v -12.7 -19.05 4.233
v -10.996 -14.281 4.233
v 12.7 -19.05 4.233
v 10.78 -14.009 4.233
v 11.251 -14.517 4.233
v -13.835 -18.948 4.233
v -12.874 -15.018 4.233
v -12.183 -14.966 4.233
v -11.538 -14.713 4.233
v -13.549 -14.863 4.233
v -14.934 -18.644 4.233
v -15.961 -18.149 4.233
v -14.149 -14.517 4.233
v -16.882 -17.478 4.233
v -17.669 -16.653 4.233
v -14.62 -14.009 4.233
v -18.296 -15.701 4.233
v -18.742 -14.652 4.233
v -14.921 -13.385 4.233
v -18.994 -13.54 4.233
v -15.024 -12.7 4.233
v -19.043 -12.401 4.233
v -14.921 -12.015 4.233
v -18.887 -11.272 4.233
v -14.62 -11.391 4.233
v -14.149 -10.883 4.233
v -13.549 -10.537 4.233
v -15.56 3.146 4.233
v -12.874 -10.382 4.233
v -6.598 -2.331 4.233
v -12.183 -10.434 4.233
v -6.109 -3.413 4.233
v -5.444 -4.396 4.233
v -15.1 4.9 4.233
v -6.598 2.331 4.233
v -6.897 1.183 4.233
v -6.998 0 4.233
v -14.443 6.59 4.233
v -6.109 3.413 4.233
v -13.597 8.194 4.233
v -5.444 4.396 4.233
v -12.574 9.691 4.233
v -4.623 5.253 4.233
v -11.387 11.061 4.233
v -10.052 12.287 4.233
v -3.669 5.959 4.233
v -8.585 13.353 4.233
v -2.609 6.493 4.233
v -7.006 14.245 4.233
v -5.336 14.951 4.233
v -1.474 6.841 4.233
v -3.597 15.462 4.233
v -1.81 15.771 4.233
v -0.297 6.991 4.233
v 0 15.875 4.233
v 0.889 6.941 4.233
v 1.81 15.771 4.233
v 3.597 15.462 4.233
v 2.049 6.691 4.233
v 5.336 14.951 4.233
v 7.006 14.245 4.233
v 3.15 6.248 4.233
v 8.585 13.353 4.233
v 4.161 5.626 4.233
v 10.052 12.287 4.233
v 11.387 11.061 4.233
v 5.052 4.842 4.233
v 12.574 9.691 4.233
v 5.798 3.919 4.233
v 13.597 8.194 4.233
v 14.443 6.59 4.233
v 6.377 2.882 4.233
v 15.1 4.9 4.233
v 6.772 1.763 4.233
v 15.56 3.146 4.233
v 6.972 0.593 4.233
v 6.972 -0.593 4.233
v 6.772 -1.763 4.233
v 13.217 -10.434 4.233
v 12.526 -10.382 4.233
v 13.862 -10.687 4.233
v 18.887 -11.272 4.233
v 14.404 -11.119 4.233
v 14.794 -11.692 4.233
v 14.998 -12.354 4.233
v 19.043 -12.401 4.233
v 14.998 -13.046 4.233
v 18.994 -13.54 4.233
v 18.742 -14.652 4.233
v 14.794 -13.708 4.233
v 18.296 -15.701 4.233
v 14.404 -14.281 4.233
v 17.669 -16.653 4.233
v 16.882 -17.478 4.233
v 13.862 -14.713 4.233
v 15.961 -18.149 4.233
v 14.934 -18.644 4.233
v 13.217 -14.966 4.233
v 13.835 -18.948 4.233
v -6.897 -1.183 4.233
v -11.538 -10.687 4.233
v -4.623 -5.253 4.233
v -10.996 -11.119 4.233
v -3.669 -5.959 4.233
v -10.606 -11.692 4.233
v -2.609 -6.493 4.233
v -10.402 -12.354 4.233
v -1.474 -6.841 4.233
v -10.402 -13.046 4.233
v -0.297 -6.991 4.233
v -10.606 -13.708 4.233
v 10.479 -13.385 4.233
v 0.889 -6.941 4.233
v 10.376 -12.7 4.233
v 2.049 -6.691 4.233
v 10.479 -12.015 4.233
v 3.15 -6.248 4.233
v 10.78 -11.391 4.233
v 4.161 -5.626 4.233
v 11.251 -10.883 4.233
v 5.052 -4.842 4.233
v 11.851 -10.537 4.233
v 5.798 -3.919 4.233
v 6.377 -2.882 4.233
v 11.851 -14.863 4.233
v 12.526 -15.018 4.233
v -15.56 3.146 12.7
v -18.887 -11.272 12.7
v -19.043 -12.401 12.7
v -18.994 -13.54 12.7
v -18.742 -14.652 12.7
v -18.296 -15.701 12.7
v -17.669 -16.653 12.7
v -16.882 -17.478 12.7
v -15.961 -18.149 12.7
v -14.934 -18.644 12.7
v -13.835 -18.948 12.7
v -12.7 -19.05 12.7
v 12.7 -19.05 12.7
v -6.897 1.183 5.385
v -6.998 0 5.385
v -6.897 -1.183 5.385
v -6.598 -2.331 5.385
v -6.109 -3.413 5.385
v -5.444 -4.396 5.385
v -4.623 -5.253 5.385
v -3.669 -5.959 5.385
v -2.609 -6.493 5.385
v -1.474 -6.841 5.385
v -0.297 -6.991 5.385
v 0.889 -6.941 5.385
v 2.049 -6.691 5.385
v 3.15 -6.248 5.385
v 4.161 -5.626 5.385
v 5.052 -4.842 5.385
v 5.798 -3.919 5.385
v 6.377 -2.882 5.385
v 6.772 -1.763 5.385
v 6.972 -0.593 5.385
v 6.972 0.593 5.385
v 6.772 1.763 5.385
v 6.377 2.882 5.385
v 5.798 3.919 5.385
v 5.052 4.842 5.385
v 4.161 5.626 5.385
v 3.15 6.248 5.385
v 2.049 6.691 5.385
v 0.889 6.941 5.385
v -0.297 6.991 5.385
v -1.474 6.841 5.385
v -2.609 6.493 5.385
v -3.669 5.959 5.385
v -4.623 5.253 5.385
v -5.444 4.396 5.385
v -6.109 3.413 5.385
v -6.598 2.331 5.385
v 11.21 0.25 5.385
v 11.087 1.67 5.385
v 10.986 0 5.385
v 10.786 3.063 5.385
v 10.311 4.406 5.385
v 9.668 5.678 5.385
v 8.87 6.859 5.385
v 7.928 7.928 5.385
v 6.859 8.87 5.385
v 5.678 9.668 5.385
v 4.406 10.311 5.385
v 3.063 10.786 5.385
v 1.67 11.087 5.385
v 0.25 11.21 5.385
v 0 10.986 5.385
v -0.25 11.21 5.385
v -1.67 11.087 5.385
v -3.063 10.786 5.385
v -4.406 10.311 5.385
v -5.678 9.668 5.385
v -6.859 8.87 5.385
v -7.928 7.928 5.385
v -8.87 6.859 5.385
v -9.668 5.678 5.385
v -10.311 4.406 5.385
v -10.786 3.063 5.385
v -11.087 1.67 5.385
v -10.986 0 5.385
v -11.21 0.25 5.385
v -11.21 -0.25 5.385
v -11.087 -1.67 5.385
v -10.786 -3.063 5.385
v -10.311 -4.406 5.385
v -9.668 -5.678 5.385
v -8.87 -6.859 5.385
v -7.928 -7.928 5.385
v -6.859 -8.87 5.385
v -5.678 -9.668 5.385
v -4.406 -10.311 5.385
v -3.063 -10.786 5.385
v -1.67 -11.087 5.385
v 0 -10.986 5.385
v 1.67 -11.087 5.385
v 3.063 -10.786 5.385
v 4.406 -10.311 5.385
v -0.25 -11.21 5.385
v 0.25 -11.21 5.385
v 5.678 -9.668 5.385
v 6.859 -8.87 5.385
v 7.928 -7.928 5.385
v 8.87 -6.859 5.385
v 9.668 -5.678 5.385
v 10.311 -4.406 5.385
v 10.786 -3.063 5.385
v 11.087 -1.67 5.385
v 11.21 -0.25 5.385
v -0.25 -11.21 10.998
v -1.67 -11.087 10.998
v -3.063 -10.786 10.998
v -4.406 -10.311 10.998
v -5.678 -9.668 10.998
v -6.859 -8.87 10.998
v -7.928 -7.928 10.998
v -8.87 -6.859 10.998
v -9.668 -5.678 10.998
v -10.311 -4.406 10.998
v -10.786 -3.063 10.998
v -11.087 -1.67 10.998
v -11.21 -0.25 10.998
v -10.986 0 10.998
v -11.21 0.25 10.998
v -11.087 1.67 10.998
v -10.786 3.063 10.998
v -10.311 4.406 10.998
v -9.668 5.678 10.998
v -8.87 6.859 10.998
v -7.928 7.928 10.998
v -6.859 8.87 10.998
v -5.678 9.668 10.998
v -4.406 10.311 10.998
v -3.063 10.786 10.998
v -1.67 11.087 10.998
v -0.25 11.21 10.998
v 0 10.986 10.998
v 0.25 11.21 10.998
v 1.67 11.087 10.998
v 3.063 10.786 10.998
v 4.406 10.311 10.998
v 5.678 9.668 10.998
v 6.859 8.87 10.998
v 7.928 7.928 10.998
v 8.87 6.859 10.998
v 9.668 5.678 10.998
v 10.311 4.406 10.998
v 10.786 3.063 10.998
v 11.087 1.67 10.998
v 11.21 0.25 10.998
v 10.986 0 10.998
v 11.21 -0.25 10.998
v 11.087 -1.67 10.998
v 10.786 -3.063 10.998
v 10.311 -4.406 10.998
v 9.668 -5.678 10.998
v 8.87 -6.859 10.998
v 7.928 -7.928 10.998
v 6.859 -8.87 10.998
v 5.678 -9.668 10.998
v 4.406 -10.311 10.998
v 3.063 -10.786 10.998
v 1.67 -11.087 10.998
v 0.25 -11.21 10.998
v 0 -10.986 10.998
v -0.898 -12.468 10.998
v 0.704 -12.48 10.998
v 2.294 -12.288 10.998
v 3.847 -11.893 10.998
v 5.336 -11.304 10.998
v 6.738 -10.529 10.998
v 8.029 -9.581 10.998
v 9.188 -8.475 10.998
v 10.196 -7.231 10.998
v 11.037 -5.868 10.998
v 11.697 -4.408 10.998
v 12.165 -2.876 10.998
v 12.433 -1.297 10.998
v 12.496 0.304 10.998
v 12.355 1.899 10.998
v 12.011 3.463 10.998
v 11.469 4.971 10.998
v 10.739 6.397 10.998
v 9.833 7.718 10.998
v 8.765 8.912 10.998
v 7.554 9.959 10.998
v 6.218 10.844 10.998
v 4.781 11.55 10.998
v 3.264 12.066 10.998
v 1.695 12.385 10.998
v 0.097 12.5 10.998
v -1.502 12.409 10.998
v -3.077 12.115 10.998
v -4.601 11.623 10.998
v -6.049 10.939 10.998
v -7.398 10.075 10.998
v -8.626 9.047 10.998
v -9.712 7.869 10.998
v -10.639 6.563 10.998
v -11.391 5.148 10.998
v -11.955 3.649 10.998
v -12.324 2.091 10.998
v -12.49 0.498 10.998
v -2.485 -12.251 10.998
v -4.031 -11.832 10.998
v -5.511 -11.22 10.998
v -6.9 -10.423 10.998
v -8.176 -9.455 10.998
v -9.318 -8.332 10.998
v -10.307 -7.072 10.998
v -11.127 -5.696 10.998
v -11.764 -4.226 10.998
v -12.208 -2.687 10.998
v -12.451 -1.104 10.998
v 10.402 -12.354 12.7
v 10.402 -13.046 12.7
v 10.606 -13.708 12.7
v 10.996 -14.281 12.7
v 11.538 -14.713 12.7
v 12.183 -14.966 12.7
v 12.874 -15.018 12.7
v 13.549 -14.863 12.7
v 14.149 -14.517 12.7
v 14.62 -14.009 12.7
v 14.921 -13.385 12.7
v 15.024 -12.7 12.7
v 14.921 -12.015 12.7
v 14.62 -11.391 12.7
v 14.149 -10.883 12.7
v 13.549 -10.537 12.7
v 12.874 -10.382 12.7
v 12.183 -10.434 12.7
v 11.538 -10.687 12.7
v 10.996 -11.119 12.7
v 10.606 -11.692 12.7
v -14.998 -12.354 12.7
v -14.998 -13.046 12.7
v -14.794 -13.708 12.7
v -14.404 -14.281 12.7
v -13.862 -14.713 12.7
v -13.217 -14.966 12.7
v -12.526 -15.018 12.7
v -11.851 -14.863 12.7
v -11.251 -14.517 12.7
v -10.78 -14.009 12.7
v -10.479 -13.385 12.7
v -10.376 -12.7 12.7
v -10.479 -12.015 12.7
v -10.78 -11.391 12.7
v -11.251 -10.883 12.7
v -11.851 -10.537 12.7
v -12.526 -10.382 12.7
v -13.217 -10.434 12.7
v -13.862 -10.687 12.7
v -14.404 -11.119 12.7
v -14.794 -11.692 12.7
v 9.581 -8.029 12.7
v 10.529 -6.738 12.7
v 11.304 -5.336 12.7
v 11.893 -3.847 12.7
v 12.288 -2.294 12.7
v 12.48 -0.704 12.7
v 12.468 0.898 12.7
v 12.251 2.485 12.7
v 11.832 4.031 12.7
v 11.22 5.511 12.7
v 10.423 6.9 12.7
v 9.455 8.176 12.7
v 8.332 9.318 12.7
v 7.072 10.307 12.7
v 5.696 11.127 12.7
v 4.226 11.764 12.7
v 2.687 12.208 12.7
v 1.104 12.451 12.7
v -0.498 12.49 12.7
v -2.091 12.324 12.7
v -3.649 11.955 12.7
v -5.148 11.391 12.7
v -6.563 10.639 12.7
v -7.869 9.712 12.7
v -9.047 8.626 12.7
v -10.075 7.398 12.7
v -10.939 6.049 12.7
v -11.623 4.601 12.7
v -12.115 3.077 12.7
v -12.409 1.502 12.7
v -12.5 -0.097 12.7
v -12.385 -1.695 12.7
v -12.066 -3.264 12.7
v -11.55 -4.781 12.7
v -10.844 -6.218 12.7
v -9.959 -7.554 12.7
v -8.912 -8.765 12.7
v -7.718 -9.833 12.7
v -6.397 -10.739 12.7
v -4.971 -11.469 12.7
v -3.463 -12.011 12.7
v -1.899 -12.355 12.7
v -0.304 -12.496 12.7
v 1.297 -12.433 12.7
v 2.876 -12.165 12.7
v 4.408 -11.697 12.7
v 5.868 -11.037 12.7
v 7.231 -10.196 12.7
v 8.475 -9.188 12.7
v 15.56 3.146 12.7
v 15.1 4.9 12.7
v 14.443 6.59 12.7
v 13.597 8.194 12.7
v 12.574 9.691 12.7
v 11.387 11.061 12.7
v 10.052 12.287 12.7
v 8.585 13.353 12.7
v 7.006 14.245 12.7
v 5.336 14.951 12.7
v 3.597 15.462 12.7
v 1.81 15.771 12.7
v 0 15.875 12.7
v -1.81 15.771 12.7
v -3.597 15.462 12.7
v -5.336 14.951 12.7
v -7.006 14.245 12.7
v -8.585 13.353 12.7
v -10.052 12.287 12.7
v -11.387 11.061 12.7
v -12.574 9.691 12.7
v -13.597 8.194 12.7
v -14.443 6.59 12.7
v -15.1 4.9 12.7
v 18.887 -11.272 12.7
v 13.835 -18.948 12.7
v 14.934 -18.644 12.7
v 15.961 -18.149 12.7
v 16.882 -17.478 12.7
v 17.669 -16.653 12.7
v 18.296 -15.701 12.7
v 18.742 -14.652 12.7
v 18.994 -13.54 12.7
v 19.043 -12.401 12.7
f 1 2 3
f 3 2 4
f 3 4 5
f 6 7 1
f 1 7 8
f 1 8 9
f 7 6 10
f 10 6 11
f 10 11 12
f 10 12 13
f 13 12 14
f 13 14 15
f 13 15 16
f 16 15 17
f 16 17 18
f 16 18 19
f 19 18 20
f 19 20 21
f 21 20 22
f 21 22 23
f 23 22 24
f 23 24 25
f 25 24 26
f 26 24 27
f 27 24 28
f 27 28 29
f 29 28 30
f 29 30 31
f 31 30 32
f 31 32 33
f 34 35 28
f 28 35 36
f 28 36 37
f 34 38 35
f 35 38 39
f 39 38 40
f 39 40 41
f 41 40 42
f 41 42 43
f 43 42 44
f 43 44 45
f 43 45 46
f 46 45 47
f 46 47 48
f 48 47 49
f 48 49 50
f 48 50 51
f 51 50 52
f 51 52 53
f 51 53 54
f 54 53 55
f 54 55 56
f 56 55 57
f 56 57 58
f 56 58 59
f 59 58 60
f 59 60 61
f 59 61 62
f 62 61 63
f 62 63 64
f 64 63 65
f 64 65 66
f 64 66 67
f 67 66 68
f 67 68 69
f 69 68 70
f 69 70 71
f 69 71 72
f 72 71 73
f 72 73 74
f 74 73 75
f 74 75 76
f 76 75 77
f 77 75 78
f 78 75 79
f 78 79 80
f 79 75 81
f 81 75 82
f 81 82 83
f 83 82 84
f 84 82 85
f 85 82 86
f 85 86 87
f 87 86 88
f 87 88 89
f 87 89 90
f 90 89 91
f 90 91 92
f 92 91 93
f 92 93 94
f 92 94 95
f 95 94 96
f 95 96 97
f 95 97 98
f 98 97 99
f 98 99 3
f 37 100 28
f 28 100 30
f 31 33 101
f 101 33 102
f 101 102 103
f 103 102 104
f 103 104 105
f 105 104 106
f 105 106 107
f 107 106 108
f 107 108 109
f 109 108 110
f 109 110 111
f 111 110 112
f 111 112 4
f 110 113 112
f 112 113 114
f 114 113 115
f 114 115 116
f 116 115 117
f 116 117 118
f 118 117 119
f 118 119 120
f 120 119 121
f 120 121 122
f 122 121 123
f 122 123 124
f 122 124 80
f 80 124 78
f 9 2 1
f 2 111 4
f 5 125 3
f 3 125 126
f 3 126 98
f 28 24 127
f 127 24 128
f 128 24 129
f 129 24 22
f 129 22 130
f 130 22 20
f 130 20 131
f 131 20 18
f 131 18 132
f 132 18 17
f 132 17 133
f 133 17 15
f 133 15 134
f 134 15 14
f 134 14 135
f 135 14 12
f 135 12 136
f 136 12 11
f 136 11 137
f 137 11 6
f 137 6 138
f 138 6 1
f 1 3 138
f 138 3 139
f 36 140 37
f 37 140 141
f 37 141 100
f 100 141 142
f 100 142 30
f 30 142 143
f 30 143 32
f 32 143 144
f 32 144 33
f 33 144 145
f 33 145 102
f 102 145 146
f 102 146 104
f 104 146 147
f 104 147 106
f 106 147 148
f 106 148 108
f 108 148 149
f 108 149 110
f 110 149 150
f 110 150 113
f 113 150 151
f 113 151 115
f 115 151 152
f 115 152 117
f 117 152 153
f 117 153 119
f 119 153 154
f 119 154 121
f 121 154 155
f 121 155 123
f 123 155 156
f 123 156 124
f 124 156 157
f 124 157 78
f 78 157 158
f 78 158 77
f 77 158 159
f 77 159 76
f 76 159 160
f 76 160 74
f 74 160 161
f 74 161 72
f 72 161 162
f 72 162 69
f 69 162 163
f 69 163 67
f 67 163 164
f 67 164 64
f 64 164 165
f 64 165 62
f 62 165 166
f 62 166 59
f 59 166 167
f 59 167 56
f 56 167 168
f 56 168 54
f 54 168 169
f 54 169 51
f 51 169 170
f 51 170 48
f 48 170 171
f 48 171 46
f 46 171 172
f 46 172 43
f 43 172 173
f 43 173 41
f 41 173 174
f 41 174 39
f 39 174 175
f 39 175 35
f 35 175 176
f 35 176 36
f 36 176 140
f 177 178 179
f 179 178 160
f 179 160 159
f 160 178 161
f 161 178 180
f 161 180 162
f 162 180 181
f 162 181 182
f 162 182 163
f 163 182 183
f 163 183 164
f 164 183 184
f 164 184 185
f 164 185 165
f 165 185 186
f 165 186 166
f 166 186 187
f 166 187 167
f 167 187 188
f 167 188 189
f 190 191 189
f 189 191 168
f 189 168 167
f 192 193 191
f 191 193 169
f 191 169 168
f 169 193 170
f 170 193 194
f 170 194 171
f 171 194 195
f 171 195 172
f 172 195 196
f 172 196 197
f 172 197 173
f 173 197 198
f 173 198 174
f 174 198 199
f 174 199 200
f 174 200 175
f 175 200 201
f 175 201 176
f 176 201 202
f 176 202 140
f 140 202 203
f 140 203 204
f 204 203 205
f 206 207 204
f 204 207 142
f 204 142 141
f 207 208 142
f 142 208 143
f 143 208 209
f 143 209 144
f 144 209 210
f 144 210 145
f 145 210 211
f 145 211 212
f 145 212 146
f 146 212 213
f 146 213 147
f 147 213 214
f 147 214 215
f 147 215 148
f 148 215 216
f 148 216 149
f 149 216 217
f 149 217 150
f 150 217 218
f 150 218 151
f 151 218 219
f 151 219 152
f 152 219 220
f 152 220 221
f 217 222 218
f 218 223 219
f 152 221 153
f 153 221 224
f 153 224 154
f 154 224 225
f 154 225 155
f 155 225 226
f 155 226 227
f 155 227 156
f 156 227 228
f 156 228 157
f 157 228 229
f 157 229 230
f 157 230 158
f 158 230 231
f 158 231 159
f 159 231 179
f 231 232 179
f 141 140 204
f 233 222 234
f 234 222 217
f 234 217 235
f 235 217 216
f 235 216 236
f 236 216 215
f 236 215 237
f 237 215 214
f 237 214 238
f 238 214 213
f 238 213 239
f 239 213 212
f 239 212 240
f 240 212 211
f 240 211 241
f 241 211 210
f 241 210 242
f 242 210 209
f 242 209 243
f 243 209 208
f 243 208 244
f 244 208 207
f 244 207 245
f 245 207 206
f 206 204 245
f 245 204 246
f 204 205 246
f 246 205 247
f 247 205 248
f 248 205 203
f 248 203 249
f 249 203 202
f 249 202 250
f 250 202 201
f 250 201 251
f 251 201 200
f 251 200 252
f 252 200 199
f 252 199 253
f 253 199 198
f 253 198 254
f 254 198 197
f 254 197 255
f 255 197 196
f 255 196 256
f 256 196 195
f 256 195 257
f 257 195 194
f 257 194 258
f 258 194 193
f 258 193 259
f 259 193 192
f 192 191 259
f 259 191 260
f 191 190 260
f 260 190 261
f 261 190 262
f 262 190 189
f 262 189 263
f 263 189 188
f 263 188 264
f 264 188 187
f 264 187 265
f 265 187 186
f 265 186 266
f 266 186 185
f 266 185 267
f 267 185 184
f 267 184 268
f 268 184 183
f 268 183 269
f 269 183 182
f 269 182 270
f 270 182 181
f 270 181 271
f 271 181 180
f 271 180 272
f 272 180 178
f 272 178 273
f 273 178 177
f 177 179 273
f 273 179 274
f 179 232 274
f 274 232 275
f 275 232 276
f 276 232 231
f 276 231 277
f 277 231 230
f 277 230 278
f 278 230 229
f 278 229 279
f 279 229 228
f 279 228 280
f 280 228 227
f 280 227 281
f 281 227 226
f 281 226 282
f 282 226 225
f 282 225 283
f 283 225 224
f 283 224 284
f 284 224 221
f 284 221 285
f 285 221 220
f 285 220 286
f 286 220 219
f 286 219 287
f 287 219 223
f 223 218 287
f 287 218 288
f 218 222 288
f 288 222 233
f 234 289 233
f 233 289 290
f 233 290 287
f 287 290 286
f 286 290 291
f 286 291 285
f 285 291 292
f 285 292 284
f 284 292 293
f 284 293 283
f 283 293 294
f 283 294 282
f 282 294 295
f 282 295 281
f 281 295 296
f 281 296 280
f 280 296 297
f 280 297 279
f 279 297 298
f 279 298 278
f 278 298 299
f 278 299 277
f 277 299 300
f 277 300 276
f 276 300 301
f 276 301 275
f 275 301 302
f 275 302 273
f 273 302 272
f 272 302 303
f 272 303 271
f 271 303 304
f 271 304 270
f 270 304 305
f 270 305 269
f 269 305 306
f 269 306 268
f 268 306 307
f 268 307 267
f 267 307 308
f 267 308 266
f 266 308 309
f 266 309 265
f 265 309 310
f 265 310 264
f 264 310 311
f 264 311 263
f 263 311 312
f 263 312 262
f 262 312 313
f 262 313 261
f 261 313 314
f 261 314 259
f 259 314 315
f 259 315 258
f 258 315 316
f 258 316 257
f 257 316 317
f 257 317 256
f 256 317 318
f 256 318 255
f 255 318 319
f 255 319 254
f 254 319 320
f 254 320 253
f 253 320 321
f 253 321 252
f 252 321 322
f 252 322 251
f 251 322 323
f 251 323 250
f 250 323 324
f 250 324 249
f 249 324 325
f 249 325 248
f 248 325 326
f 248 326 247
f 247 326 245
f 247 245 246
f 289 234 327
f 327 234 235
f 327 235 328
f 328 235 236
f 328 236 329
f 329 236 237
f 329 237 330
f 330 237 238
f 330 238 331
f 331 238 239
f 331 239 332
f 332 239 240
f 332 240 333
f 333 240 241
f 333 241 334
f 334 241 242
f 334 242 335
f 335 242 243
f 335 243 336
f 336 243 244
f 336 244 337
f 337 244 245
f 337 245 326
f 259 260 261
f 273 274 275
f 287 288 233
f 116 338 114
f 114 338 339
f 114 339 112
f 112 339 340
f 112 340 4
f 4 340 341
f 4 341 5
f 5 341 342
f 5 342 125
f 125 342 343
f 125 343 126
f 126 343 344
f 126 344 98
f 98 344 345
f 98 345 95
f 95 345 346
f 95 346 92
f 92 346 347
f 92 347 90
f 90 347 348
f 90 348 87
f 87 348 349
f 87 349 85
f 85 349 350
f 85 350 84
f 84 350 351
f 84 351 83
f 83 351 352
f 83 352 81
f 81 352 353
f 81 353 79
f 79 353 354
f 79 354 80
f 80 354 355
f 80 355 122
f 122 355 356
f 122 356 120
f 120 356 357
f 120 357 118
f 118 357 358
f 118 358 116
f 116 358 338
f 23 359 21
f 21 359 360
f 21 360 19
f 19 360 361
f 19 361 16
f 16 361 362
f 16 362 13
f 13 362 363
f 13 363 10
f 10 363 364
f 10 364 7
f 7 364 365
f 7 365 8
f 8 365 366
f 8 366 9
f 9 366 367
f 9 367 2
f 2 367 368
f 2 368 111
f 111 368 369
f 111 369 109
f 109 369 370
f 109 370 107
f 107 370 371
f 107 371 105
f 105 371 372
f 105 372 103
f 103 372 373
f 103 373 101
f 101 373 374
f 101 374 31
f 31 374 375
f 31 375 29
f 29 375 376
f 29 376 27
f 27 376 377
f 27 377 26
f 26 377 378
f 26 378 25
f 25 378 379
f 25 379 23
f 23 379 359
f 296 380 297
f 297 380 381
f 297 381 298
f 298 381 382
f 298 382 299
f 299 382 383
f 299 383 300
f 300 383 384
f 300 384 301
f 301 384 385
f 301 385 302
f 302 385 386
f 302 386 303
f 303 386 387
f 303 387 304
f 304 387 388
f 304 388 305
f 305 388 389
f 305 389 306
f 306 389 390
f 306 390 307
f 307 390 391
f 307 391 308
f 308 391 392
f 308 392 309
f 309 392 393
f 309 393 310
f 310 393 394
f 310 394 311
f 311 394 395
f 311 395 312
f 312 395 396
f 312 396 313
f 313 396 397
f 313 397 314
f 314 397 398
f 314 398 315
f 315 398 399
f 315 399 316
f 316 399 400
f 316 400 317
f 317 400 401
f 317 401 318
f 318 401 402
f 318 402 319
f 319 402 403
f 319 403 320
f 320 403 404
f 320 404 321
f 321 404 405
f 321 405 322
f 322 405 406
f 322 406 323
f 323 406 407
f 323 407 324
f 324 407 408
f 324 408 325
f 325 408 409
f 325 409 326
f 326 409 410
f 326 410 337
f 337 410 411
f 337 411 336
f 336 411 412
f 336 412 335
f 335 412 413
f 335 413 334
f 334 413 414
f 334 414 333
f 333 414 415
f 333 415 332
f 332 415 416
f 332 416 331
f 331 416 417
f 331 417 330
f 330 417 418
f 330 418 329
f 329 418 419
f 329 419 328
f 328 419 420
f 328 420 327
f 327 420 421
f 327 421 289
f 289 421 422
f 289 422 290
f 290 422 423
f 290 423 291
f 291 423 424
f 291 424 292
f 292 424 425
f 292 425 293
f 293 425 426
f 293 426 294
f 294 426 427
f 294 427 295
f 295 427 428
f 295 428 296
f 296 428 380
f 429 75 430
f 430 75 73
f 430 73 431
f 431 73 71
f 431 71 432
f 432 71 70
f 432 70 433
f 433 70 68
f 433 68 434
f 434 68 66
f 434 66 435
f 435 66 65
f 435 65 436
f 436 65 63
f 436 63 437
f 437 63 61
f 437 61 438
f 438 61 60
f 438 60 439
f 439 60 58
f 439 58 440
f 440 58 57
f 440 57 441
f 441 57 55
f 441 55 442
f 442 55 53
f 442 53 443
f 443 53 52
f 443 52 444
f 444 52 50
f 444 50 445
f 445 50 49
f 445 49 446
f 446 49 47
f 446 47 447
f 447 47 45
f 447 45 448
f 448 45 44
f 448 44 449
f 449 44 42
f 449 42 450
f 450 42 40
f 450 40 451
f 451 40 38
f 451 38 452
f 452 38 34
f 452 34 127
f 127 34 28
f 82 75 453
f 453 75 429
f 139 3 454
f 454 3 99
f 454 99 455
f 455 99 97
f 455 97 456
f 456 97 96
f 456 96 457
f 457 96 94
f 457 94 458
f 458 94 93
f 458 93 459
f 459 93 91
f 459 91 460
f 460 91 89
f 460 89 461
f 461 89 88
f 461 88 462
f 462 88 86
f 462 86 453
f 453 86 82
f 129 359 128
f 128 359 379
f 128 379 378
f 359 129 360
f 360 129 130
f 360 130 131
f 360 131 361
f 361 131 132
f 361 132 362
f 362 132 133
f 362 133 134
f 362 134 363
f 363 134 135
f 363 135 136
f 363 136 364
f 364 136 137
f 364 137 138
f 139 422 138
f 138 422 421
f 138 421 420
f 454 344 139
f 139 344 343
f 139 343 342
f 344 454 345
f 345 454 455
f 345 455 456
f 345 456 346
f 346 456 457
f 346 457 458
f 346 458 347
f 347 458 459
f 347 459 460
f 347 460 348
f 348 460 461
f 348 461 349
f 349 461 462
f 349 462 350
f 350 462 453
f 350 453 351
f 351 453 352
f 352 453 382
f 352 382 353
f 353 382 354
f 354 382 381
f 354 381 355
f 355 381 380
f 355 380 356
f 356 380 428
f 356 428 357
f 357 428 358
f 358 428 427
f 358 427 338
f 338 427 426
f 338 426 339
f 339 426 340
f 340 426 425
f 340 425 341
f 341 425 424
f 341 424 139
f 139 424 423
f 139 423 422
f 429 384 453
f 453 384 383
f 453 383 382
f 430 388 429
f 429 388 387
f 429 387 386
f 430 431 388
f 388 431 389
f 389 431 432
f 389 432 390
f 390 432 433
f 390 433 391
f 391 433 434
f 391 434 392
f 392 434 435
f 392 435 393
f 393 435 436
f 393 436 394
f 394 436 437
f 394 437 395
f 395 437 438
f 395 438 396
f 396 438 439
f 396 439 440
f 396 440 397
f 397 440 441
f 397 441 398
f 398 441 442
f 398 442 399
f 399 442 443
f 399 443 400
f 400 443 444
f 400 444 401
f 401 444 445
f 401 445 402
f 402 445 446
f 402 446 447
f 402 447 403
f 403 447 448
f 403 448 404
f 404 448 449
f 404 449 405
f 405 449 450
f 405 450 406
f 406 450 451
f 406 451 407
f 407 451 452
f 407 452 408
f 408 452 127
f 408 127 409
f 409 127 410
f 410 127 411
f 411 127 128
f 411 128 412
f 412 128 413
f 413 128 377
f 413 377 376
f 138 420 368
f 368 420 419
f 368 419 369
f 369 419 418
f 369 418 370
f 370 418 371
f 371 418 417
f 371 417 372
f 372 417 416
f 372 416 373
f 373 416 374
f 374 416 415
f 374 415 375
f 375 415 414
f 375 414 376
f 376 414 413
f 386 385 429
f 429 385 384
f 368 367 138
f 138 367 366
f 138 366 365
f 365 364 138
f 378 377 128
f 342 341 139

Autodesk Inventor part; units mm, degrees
ref_plane "YZ Plane" through (0, 0, 0) normal (1, 0, 0) x (0, 1, 0)
ref_plane "XZ Plane" through (0, 0, 0) normal (0, 1, 0) x (-1, 0, 0)
ref_plane "XY Plane" through (0, 0, 0) normal (0, 0, 1) x (1, 0, 0)
sketch "Sketch1" plane through (0, 0, 0) normal (0, 0, 1) x (1, 0, 0)
  arc A0 (-5.827627, -9.579088) -> (-0.250527, -11.231057) centre (0.025157, -0.060123) ccw
  arc A1 (0.25, -11.209713) -> (5.829601, -9.582326) centre (0.025157, -0.060123) ccw
  line L0 (0.46552, -11.403002) -> (0, -10.9855)
  line L1 (0, -10.9855) -> (-0.46552, -11.403002)
  arc A2 (-11.176173, -0.249433) -> (-9.579088, -5.827627) centre (0.025157, -0.060123) ccw
  line L2 (-11.403002, -0.46552) -> (-10.9855, 0)
  line L3 (-10.9855, 0) -> (-11.403002, 0.46552)
  arc A3 (-9.579088, 5.827627) -> (-11.209713, 0.25) centre (0, 0) ccw
  arc A4 (5.827627, 9.579088) -> (0.25, 11.209713) centre (0, 0) ccw
  line L4 (0, 10.9855) -> (0.46552, 11.403002)
  line L5 (-0.46552, 11.403002) -> (0, 10.9855)
  arc A5 (-0.25, 11.209713) -> (-5.827627, 9.579088) centre (0, 0) ccw
  arc A6 (11.209713, 0.25) -> (9.579088, 5.827627) centre (0, 0) ccw
  line L6 (11.403002, 0.46552) -> (10.9855, 0)
  line L7 (10.9855, 0) -> (11.403002, -0.46552)
  arc A7 (9.579088, -5.827627) -> (11.209713, -0.25) centre (0, 0) ccw
  arc A8 (7.230816, -10.196338) -> (10.196338, -7.230816) centre (0, 0) ccw
  arc A9 (-10.196338, -7.230816) -> (-7.230816, -10.196338) centre (0, 0) ccw
  arc A10 (-7.230816, 10.196338) -> (-10.196338, 7.230816) centre (0, 0) ccw
  circle A11 centre (0, 0) radius 12.5
  circle A12 centre (12.7, -12.7) radius 2.3241
  circle A13 centre (-12.7, -12.7) radius 2.3241
  line L8 (-19.05, -12.7) -> (19.05, -12.7) construction
  line L9 (-12.7, -19.05) -> (12.7, -19.05)
  line L10 (12.7, -6.35) -> (-12.7, -6.35)
  arc A14 (-12.7, -6.35) -> (-12.7, -19.05) centre (-12.7, -12.7) ccw
  arc A15 (12.7, -19.05) -> (12.7, -6.35) centre (12.7, -12.7) ccw
  circle A16 centre (0, 0) radius 11.2125
  circle A17 centre (0, 0) radius 15.875
  line L11 (15.560093, 3.146287) -> (18.887388, -11.272158)
  line L12 (0, -10.9855) -> (0, -12.5)
  line L13 (-15.560093, 3.146287) -> (-18.887388, -11.272158)
  point P0 (-0.46552, -11.403002)
  point P1 (-11.403002, -0.46552)
  point P2 (0, -12.7)
  point P3 (10.196338, -7.230816)
  point P4 (7.230816, -10.196338)
  point P5 (-7.230816, -10.196338)
  point P6 (-10.196338, -7.230816)
  point P7 (-10.196338, 7.230816)
  point P8 (-7.230816, 10.196338)
  point P9 (-0.25, -11.209713)
  point P10 (0.25, -11.209713)
  point P11 (9.579088, -5.827627)
  point P12 (9.579088, 5.827627)
  point P13 (-5.827627, 9.579088)
  point P14 (-9.579088, 5.827627)
  point P15 (-11.209713, -0.25)
  dimension "d0" = 25
  dimension "d9" = 31.75
  dimension "d1" = 4.6482
  dimension "d2" = 4.6482
  dimension "d4" = 6.35
  dimension "d5" = 6.35
  dimension "d6" = 12.7
  dimension "d8" = 25.4
extrude "Extrusion1" add sketch "Sketch1" along normal blind 12.7 contours L10 A14 A17 A15 A11 A10 | A11 A9 A8 L10 A15 A17 A12 A13 A14 | A17 A13 A12 A15 L9 A14 | A14 L13 A17 | A17 L11 A15
extrude "Extrusion2" add sketch "Sketch1" along normal blind 10.9982 contours A16 L1 A0 | A0 L1 A16 L12 A11 A9 L10 | A16 L10 L0 L1 | A16 L2 L3 A3 A5 L5 L4 A4 A6 L6 L7 A7 L10 | L10 A11 A10 A16 A7 A6 A4 A5 A3 | L1 L12 A16 | L10 A11 A8 L12 A16 | L0 A16 L12 | A16 L3 L2 | L7 L6 A16 | A16 L4 L5
sketch "Sketch1 outline for Extrusion3" plane through (0, 0, 0) normal (0, 0, 1) x (1, 0, 0)
  arc A0 (-11.209713, -0.25) -> (-0.25, -11.209713) centre (0, 0) ccw
  line L0 (-10.9855, 0) -> (-11.209713, -0.25)
  line L1 (-11.209713, 0.25) -> (-10.9855, 0)
  arc A1 (-9.579088, 5.827627) -> (-11.209713, 0.25) centre (0, 0) ccw
  arc A2 (-5.827627, 9.579088) -> (-9.579088, 5.827627) centre (0, 0) ccw
  arc A3 (-0.25, 11.209713) -> (-5.827627, 9.579088) centre (0, 0) ccw
  line L2 (0, 10.9855) -> (-0.25, 11.209713)
  line L3 (0.25, 11.209713) -> (0, 10.9855)
  arc A4 (5.827627, 9.579088) -> (0.25, 11.209713) centre (0, 0) ccw
  arc A5 (9.579088, 5.827627) -> (5.827627, 9.579088) centre (0, 0) ccw
  arc A6 (11.209713, 0.25) -> (9.579088, 5.827627) centre (0, 0) ccw
  line L4 (10.9855, 0) -> (11.209713, 0.25)
  line L5 (11.209713, -0.25) -> (10.9855, 0)
  arc A7 (9.579088, -5.827627) -> (11.209713, -0.25) centre (0, 0) ccw
  arc A8 (0.25, -11.209713) -> (9.579088, -5.827627) centre (0, 0) ccw
  line L6 (0, -10.9855) -> (0.25, -11.209713)
  line L7 (-0.25, -11.209713) -> (0, -10.9855)
extrude "Extrusion3" cut sketch "Sketch1 outline for Extrusion3" along normal blind 10.9982
sketch "Sketch2" plane through (0, 0, 0) normal (0, 0, -1) x (-1, 0, 0)
  arc A0 (-0.25, 11.209713) -> (-11.209713, 0.25) centre (0, 0) ccw
  arc A1 (11.209713, 0.25) -> (0.25, 11.209713) centre (0, 0) ccw
  line L0 (0, 10.9855) -> (0.25, 11.209713)
  line L1 (-0.25, 11.209713) -> (0, 10.9855)
  line L2 (11.209713, 0.25) -> (10.9855, 0)
  line L3 (10.9855, 0) -> (11.209713, -0.25)
  arc A2 (0.25, -11.209713) -> (11.209713, -0.25) centre (0, 0) ccw
  line L4 (0.25, -11.209713) -> (0, -10.9855)
  line L5 (0, -10.9855) -> (-0.25, -11.209713)
  arc A3 (-11.209713, -0.25) -> (-0.25, -11.209713) centre (0, 0) ccw
  line L6 (-11.209713, -0.25) -> (-10.9855, 0)
  line L7 (-10.9855, 0) -> (-11.209713, 0.25)
  circle A4 centre (0, 0) radius 6.9977
  point P0 (0, 0)
  dimension "d16" = 13.9954
extrude "Extrusion4" add sketch "Sketch2" against normal blind 5.3848
sketch "Sketch3" plane through (0, 0, 0) normal (0, 0, -1) x (-1, 0, 0)
  circle A0 centre (0, 0) radius 6.9977
  arc A1 (12.7, -19.05) -> (18.887388, -11.272158) centre (12.7, -12.7) ccw
  line L0 (15.560093, 3.146287) -> (18.887388, -11.272158)
  arc A2 (15.560093, 3.146287) -> (-15.560093, 3.146287) centre (0, 0) ccw
  line L1 (-18.887388, -11.272158) -> (-15.560093, 3.146287)
  arc A3 (-18.887388, -11.272158) -> (-12.7, -19.05) centre (-12.7, -12.7) ccw
  line L2 (12.7, -19.05) -> (-12.7, -19.05)
  circle A4 centre (12.7, -12.7) radius 2.3241
  circle A5 centre (-12.7, -12.7) radius 2.3241
  point P0 (0, 0)
extrude "Extrusion5" cut sketch "Sketch3" against normal blind 4.233333
sketch "Sketch4" plane through (0, 0, 4.233333) normal (0, 0, -1) x (-1, 0, 0)
  point P0 (0, 0)
sketch "Sketch5" plane through (0, 0, 4.233333) normal (0, 0, -1) x (-1, 0, 0)
  point P0 (0, 0)
properties part number "Conveyor Bearing Housing"
